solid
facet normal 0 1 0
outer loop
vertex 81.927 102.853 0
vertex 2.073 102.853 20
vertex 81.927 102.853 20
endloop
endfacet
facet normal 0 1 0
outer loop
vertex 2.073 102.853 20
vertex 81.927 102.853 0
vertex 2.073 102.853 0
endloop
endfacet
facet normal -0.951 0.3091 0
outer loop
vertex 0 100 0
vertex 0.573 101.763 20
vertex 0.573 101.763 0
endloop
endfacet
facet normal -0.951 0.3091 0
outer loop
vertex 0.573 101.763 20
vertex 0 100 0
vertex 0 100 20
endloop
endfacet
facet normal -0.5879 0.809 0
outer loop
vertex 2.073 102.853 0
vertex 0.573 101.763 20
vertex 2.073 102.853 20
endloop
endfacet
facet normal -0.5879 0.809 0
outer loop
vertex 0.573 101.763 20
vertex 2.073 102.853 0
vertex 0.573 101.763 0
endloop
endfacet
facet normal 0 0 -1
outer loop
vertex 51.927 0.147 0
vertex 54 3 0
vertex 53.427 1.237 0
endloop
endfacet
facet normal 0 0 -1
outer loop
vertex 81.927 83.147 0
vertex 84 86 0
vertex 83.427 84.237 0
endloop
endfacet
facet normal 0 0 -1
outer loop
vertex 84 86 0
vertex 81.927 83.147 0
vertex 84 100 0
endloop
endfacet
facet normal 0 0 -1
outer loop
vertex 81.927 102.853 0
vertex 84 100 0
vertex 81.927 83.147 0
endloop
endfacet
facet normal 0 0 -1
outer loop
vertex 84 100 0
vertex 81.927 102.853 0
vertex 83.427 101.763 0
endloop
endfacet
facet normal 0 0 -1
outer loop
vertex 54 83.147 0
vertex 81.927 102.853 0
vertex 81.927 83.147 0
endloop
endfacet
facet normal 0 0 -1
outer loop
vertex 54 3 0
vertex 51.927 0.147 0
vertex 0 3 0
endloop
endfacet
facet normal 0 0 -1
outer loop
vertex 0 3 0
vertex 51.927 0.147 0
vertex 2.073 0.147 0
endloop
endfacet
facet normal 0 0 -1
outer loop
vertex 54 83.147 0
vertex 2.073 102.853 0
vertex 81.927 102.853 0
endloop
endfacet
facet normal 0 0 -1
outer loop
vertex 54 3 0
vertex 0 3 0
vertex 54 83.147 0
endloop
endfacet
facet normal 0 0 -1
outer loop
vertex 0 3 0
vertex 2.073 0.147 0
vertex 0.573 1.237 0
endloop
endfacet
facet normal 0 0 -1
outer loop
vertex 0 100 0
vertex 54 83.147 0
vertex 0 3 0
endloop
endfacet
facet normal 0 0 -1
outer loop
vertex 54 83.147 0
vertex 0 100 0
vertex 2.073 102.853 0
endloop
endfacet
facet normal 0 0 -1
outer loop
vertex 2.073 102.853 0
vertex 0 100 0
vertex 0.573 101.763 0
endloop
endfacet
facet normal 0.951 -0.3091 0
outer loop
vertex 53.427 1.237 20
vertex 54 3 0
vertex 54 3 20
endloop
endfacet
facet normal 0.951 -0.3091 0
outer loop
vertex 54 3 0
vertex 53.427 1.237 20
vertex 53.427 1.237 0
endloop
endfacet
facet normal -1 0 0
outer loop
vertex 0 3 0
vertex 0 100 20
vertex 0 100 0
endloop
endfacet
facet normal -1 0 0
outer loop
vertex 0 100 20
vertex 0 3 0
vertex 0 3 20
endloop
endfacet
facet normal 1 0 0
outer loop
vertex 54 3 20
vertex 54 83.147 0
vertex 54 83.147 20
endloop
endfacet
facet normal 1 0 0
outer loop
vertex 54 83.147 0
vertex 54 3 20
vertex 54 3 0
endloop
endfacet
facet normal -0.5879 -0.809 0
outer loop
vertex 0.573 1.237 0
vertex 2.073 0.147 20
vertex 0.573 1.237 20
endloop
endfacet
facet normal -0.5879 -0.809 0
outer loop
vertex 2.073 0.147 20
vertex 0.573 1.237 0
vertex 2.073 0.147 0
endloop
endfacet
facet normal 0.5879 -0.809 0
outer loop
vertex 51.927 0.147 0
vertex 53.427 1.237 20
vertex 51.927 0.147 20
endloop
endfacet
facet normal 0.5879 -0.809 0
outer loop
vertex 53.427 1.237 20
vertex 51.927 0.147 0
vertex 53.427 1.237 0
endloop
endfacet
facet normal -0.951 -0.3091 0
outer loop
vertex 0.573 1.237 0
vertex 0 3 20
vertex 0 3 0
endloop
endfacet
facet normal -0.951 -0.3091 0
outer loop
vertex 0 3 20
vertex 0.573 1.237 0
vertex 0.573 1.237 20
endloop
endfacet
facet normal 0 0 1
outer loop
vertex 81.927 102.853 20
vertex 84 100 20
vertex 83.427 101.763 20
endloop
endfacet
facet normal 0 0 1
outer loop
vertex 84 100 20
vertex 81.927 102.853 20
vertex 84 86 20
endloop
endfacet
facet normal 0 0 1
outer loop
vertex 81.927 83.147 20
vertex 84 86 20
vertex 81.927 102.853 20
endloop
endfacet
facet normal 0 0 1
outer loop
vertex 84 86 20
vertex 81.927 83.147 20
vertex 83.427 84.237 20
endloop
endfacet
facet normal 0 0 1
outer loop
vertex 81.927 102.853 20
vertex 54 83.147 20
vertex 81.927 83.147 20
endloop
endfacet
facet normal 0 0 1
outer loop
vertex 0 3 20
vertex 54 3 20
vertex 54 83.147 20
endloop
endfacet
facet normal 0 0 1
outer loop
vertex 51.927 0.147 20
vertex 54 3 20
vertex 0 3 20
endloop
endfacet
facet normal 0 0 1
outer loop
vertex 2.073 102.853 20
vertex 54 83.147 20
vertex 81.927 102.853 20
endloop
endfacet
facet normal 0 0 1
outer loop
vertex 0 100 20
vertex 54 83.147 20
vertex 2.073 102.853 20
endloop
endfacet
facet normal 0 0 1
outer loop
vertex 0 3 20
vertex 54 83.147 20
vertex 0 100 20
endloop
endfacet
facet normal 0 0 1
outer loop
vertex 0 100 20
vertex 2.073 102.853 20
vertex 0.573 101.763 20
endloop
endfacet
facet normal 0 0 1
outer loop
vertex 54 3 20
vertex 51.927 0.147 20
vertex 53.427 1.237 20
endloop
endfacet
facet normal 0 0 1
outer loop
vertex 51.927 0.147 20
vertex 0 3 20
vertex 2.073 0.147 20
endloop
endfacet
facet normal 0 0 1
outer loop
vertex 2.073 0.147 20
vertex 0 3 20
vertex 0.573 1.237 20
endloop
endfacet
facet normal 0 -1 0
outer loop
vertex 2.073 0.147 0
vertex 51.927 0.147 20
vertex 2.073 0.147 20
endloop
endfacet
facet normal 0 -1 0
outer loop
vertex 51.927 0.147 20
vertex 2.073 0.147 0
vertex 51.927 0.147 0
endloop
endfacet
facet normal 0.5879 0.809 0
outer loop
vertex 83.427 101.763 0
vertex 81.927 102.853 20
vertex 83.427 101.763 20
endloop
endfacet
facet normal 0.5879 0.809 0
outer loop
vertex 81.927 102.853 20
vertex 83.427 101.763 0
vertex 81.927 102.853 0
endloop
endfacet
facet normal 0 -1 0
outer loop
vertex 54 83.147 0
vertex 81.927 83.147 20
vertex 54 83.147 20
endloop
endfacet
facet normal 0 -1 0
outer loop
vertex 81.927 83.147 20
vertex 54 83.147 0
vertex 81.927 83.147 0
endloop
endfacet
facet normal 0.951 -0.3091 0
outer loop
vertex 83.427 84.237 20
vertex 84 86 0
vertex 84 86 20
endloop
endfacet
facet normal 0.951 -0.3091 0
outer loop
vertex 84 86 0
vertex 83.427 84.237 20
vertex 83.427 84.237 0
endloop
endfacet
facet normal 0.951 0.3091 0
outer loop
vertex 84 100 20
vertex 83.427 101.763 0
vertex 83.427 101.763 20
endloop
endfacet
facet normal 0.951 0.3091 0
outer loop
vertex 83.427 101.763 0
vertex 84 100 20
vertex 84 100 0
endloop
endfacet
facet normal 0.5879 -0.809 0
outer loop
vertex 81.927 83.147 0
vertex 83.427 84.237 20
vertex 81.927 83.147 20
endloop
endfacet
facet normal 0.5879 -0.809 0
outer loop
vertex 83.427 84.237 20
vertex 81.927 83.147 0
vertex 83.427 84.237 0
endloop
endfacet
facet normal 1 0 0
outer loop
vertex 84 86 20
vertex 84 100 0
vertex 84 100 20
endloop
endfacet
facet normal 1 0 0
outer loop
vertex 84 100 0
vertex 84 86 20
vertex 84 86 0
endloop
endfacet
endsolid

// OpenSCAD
// file: ../../lib/rounded_square.scad
$bleed = 1;
$rounding = 3;

module rounded_square(size) {
  inner_size = [
    size[0] - $rounding * 2,
    size[1] - $rounding * 2,
  ];

  minkowski() {
    translate([$rounding, $rounding, 0]) {
      square(inner_size);
    }
    circle($rounding);
  }
}
// file: ../../lib/rounded_cube.scad
include <./rounded_square.scad>

$bleed = 1;
$rounding = 3;

// Render a rounded cube
// flat_top: do not round the top edges
// flat_bottom: do not round the bottom edges
// flat: equals flat_top && flat_bottom
// 
// Limitations:
// requires height > $rounding * 2
// flat_top || flat_bottom requires height > $rounding
// flat_top && flat_bottom requires height > $bleed
module rounded_cube(
  size, 
  flat=false, 
  flat_top=false, 
  flat_bottom=false,
  side_rounding=-1
) {
  _flat = flat || (flat_top && flat_bottom);
  _flat_top = flat_top || flat;
  _flat_bottom = flat_bottom || flat;
  _rounding = min($rounding, size[2] / 2);
  _side_rounding = side_rounding > -1 ? side_rounding: $rounding;

  assert(_side_rounding >= $rounding, "side rounding cannot be less than rounding");

  top_height = _flat_top ? 0: _rounding;
  bottom_height = _flat_bottom ? 0: _rounding;

  cube_size = [
    size[0] - _rounding * 2,
    size[1] - _rounding * 2,
    size[2] - (top_height + bottom_height)
  ];

  if (_flat_top && _flat_bottom) {
     linear_extrude(cube_size[2]) {
       rounded_square([size[0], size[1]]);
     }
  } else {
    minkowski() {
      translate([_rounding, _rounding, bottom_height]) {
        if (_side_rounding != _rounding) {
          linear_extrude(cube_size[2]) {
            rounded_square([cube_size[0], cube_size[1]], $rounding=_side_rounding);
          }
        } else {
          cube(cube_size);
        }
      }

      if (_flat_top) {
        difference() {
          sphere(_rounding);
          cylinder(_rounding, _rounding, _rounding);
        }
      } else if (_flat_bottom) {
        difference() {
          sphere(_rounding);
          translate ([0, 0, -_rounding]) {
            cylinder(_rounding, _rounding, _rounding);
          }
        }
      } else {
        sphere(_rounding);
      }
    }
  }
}
// main file
echo(version=version());

include <../../lib/rounded_cube.scad>

$wall_thickness = 2;
$rounding = 3;
$bleed = 0.01;

length = 54;
width = 103;
height = 20;

lip_length = 30;
lip_width = 20;

rounded_cube([length, width, height], flat_top=true, flat_bottom=true);

translate([length - $rounding * 2 - $bleed, width-lip_width, 0]) {
  rounded_cube([lip_length + $rounding * 2 + $bleed, lip_width, height], flat_top=true, flat_bottom=true);
}
